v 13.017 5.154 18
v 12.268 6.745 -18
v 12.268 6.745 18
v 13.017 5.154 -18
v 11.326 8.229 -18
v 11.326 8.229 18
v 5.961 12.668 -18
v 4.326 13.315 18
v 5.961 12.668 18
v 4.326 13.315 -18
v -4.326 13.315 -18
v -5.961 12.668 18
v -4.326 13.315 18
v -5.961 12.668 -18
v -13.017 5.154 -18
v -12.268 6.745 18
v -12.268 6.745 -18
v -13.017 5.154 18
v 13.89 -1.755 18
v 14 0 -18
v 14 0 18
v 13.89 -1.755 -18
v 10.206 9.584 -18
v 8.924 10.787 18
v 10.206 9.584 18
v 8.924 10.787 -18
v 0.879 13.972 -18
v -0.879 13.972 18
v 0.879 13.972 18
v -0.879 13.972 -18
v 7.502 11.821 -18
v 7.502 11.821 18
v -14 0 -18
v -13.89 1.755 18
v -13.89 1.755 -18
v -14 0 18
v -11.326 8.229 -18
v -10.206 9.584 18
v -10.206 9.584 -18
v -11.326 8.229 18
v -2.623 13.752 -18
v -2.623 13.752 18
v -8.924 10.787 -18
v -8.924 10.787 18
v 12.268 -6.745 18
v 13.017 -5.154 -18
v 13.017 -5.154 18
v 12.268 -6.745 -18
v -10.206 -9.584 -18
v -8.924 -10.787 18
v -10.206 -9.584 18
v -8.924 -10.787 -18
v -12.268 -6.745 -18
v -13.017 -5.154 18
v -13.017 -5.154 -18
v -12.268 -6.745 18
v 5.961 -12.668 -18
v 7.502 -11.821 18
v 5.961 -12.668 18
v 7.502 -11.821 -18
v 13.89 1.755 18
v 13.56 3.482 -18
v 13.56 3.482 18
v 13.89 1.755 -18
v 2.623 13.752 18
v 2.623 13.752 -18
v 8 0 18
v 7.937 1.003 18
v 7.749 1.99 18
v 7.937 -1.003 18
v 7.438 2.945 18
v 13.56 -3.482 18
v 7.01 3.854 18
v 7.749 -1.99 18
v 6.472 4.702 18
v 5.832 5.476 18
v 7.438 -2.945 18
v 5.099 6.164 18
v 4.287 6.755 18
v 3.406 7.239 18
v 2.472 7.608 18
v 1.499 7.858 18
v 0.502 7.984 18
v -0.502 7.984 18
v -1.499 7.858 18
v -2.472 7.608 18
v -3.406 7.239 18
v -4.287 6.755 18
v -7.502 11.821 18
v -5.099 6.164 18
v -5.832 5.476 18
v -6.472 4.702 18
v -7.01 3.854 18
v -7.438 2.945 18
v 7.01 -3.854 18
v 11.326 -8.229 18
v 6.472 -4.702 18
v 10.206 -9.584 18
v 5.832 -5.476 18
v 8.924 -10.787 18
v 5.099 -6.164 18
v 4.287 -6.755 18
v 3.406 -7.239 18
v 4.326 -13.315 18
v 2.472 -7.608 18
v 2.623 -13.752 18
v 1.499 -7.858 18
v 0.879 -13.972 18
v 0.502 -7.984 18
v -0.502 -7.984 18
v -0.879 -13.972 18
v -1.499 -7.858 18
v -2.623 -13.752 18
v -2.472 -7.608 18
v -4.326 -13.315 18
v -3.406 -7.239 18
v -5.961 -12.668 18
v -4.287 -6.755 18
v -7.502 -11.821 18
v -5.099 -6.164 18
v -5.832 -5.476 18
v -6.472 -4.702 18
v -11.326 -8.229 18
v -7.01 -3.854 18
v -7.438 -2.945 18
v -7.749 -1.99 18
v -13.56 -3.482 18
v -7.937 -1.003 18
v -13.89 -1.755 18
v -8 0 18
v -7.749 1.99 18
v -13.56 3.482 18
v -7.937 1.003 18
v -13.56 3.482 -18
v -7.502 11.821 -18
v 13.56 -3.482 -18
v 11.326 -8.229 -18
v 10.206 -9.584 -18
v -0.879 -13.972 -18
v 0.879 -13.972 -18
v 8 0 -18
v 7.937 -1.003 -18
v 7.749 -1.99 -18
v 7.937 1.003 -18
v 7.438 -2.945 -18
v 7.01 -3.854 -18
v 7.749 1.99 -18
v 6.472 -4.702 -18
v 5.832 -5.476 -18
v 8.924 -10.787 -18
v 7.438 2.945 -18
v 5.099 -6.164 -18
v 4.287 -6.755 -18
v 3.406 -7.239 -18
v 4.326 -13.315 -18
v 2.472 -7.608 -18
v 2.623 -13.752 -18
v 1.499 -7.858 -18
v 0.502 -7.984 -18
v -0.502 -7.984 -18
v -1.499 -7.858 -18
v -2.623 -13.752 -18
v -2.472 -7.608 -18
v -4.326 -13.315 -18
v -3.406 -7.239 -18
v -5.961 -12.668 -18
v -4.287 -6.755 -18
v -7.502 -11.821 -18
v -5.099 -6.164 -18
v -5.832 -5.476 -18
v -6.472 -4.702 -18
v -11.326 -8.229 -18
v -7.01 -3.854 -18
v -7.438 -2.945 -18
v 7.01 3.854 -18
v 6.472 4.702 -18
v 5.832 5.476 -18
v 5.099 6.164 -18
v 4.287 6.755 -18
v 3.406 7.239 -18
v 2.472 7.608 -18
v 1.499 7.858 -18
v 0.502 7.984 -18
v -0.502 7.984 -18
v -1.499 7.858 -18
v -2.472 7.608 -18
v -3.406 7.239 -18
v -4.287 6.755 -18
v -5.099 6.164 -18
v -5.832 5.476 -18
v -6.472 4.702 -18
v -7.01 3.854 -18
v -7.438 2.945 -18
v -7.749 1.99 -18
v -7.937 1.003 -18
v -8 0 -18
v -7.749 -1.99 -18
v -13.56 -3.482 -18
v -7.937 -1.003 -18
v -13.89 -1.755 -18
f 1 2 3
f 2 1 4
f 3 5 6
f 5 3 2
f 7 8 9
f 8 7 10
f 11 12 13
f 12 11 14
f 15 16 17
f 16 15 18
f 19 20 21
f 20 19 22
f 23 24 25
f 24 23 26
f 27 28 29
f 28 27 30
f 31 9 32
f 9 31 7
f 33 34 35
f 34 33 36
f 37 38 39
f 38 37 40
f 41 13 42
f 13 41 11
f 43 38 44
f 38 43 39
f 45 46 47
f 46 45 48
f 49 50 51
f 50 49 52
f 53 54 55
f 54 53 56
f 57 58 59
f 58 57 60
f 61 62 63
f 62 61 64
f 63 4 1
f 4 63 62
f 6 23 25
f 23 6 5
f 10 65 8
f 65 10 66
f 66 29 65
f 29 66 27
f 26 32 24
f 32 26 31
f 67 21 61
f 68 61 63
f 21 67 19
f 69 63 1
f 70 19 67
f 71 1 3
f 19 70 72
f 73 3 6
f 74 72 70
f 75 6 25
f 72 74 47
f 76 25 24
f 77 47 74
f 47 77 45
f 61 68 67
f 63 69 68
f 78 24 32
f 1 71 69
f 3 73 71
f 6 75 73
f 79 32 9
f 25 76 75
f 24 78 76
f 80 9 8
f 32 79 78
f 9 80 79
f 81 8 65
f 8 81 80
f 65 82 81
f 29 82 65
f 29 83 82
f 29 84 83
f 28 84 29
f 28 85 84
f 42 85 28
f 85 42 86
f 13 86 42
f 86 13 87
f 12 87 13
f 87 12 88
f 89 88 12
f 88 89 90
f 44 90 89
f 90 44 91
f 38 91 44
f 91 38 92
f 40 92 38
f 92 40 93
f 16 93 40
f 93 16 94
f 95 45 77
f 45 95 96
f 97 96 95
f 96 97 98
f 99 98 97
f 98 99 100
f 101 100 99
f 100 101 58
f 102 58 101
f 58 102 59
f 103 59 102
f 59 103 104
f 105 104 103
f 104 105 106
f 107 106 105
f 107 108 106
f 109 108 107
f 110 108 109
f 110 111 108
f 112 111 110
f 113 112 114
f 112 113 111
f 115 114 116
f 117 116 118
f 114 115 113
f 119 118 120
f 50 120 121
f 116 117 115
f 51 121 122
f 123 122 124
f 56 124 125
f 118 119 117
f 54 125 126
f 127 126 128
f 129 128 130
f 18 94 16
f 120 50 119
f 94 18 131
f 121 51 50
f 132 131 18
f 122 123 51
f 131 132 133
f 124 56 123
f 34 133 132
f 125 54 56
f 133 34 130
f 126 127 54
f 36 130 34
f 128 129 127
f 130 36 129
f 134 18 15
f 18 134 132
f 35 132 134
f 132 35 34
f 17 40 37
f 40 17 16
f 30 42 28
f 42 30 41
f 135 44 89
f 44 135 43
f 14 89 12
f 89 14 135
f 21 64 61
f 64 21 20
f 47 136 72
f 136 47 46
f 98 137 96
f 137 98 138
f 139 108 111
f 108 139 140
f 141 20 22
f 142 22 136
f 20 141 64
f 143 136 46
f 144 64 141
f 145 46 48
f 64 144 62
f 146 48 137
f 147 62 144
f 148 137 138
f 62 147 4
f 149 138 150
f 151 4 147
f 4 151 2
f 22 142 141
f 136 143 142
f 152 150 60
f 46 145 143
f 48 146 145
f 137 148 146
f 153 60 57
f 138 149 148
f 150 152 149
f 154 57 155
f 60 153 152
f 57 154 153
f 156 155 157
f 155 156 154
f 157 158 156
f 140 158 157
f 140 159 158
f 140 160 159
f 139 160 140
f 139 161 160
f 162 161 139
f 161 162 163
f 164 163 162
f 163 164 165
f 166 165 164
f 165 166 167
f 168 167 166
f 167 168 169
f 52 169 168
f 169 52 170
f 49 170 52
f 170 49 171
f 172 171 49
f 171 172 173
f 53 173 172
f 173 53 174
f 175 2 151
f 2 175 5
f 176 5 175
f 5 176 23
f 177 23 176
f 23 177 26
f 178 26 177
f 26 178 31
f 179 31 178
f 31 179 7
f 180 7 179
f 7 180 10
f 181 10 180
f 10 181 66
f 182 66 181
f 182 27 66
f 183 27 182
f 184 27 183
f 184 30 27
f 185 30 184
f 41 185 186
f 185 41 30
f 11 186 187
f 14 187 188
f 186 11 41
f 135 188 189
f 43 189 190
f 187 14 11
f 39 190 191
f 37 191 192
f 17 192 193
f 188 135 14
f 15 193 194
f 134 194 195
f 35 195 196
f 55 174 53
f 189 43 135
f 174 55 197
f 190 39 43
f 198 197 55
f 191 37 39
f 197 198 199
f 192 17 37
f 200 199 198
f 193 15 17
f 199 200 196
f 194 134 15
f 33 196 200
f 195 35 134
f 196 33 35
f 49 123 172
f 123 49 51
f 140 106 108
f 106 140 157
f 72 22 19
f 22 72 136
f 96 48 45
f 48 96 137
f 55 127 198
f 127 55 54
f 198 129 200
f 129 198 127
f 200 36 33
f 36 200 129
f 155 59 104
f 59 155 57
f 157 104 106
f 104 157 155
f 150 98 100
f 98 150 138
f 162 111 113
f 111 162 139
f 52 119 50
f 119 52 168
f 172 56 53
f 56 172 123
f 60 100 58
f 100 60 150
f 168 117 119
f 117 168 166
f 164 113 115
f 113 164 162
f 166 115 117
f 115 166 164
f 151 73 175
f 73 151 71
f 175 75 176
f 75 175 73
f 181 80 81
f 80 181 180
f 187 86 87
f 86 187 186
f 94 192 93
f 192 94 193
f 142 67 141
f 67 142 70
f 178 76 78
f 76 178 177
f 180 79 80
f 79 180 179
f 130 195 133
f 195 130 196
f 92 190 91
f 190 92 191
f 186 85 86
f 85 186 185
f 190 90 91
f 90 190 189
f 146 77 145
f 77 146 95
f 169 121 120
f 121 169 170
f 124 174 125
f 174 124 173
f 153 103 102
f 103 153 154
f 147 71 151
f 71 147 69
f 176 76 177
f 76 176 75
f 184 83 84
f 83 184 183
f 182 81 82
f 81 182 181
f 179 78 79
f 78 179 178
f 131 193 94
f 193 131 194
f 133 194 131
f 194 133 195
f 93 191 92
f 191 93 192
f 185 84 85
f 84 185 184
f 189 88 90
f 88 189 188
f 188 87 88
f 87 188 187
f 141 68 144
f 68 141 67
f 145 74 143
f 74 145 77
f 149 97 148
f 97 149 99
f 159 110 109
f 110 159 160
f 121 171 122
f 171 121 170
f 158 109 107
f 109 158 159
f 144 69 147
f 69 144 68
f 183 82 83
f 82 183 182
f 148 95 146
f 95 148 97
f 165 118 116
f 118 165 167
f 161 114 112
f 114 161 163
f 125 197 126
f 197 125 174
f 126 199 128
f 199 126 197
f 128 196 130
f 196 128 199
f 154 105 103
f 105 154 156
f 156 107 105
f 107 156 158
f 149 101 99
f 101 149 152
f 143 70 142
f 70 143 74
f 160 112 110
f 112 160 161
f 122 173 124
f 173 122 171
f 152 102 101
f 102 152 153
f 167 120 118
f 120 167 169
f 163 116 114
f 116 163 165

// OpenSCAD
$fn = 50;


difference() {
	union() {
		translate(v = [0, 0, -18.0000000000]) {
			cylinder(h = 36, r = 14.0000000000);
		}
	}
	union() {
		translate(v = [0, 0, -100.0000000000]) {
			cylinder(h = 200, r = 8);
		}
	}
}
